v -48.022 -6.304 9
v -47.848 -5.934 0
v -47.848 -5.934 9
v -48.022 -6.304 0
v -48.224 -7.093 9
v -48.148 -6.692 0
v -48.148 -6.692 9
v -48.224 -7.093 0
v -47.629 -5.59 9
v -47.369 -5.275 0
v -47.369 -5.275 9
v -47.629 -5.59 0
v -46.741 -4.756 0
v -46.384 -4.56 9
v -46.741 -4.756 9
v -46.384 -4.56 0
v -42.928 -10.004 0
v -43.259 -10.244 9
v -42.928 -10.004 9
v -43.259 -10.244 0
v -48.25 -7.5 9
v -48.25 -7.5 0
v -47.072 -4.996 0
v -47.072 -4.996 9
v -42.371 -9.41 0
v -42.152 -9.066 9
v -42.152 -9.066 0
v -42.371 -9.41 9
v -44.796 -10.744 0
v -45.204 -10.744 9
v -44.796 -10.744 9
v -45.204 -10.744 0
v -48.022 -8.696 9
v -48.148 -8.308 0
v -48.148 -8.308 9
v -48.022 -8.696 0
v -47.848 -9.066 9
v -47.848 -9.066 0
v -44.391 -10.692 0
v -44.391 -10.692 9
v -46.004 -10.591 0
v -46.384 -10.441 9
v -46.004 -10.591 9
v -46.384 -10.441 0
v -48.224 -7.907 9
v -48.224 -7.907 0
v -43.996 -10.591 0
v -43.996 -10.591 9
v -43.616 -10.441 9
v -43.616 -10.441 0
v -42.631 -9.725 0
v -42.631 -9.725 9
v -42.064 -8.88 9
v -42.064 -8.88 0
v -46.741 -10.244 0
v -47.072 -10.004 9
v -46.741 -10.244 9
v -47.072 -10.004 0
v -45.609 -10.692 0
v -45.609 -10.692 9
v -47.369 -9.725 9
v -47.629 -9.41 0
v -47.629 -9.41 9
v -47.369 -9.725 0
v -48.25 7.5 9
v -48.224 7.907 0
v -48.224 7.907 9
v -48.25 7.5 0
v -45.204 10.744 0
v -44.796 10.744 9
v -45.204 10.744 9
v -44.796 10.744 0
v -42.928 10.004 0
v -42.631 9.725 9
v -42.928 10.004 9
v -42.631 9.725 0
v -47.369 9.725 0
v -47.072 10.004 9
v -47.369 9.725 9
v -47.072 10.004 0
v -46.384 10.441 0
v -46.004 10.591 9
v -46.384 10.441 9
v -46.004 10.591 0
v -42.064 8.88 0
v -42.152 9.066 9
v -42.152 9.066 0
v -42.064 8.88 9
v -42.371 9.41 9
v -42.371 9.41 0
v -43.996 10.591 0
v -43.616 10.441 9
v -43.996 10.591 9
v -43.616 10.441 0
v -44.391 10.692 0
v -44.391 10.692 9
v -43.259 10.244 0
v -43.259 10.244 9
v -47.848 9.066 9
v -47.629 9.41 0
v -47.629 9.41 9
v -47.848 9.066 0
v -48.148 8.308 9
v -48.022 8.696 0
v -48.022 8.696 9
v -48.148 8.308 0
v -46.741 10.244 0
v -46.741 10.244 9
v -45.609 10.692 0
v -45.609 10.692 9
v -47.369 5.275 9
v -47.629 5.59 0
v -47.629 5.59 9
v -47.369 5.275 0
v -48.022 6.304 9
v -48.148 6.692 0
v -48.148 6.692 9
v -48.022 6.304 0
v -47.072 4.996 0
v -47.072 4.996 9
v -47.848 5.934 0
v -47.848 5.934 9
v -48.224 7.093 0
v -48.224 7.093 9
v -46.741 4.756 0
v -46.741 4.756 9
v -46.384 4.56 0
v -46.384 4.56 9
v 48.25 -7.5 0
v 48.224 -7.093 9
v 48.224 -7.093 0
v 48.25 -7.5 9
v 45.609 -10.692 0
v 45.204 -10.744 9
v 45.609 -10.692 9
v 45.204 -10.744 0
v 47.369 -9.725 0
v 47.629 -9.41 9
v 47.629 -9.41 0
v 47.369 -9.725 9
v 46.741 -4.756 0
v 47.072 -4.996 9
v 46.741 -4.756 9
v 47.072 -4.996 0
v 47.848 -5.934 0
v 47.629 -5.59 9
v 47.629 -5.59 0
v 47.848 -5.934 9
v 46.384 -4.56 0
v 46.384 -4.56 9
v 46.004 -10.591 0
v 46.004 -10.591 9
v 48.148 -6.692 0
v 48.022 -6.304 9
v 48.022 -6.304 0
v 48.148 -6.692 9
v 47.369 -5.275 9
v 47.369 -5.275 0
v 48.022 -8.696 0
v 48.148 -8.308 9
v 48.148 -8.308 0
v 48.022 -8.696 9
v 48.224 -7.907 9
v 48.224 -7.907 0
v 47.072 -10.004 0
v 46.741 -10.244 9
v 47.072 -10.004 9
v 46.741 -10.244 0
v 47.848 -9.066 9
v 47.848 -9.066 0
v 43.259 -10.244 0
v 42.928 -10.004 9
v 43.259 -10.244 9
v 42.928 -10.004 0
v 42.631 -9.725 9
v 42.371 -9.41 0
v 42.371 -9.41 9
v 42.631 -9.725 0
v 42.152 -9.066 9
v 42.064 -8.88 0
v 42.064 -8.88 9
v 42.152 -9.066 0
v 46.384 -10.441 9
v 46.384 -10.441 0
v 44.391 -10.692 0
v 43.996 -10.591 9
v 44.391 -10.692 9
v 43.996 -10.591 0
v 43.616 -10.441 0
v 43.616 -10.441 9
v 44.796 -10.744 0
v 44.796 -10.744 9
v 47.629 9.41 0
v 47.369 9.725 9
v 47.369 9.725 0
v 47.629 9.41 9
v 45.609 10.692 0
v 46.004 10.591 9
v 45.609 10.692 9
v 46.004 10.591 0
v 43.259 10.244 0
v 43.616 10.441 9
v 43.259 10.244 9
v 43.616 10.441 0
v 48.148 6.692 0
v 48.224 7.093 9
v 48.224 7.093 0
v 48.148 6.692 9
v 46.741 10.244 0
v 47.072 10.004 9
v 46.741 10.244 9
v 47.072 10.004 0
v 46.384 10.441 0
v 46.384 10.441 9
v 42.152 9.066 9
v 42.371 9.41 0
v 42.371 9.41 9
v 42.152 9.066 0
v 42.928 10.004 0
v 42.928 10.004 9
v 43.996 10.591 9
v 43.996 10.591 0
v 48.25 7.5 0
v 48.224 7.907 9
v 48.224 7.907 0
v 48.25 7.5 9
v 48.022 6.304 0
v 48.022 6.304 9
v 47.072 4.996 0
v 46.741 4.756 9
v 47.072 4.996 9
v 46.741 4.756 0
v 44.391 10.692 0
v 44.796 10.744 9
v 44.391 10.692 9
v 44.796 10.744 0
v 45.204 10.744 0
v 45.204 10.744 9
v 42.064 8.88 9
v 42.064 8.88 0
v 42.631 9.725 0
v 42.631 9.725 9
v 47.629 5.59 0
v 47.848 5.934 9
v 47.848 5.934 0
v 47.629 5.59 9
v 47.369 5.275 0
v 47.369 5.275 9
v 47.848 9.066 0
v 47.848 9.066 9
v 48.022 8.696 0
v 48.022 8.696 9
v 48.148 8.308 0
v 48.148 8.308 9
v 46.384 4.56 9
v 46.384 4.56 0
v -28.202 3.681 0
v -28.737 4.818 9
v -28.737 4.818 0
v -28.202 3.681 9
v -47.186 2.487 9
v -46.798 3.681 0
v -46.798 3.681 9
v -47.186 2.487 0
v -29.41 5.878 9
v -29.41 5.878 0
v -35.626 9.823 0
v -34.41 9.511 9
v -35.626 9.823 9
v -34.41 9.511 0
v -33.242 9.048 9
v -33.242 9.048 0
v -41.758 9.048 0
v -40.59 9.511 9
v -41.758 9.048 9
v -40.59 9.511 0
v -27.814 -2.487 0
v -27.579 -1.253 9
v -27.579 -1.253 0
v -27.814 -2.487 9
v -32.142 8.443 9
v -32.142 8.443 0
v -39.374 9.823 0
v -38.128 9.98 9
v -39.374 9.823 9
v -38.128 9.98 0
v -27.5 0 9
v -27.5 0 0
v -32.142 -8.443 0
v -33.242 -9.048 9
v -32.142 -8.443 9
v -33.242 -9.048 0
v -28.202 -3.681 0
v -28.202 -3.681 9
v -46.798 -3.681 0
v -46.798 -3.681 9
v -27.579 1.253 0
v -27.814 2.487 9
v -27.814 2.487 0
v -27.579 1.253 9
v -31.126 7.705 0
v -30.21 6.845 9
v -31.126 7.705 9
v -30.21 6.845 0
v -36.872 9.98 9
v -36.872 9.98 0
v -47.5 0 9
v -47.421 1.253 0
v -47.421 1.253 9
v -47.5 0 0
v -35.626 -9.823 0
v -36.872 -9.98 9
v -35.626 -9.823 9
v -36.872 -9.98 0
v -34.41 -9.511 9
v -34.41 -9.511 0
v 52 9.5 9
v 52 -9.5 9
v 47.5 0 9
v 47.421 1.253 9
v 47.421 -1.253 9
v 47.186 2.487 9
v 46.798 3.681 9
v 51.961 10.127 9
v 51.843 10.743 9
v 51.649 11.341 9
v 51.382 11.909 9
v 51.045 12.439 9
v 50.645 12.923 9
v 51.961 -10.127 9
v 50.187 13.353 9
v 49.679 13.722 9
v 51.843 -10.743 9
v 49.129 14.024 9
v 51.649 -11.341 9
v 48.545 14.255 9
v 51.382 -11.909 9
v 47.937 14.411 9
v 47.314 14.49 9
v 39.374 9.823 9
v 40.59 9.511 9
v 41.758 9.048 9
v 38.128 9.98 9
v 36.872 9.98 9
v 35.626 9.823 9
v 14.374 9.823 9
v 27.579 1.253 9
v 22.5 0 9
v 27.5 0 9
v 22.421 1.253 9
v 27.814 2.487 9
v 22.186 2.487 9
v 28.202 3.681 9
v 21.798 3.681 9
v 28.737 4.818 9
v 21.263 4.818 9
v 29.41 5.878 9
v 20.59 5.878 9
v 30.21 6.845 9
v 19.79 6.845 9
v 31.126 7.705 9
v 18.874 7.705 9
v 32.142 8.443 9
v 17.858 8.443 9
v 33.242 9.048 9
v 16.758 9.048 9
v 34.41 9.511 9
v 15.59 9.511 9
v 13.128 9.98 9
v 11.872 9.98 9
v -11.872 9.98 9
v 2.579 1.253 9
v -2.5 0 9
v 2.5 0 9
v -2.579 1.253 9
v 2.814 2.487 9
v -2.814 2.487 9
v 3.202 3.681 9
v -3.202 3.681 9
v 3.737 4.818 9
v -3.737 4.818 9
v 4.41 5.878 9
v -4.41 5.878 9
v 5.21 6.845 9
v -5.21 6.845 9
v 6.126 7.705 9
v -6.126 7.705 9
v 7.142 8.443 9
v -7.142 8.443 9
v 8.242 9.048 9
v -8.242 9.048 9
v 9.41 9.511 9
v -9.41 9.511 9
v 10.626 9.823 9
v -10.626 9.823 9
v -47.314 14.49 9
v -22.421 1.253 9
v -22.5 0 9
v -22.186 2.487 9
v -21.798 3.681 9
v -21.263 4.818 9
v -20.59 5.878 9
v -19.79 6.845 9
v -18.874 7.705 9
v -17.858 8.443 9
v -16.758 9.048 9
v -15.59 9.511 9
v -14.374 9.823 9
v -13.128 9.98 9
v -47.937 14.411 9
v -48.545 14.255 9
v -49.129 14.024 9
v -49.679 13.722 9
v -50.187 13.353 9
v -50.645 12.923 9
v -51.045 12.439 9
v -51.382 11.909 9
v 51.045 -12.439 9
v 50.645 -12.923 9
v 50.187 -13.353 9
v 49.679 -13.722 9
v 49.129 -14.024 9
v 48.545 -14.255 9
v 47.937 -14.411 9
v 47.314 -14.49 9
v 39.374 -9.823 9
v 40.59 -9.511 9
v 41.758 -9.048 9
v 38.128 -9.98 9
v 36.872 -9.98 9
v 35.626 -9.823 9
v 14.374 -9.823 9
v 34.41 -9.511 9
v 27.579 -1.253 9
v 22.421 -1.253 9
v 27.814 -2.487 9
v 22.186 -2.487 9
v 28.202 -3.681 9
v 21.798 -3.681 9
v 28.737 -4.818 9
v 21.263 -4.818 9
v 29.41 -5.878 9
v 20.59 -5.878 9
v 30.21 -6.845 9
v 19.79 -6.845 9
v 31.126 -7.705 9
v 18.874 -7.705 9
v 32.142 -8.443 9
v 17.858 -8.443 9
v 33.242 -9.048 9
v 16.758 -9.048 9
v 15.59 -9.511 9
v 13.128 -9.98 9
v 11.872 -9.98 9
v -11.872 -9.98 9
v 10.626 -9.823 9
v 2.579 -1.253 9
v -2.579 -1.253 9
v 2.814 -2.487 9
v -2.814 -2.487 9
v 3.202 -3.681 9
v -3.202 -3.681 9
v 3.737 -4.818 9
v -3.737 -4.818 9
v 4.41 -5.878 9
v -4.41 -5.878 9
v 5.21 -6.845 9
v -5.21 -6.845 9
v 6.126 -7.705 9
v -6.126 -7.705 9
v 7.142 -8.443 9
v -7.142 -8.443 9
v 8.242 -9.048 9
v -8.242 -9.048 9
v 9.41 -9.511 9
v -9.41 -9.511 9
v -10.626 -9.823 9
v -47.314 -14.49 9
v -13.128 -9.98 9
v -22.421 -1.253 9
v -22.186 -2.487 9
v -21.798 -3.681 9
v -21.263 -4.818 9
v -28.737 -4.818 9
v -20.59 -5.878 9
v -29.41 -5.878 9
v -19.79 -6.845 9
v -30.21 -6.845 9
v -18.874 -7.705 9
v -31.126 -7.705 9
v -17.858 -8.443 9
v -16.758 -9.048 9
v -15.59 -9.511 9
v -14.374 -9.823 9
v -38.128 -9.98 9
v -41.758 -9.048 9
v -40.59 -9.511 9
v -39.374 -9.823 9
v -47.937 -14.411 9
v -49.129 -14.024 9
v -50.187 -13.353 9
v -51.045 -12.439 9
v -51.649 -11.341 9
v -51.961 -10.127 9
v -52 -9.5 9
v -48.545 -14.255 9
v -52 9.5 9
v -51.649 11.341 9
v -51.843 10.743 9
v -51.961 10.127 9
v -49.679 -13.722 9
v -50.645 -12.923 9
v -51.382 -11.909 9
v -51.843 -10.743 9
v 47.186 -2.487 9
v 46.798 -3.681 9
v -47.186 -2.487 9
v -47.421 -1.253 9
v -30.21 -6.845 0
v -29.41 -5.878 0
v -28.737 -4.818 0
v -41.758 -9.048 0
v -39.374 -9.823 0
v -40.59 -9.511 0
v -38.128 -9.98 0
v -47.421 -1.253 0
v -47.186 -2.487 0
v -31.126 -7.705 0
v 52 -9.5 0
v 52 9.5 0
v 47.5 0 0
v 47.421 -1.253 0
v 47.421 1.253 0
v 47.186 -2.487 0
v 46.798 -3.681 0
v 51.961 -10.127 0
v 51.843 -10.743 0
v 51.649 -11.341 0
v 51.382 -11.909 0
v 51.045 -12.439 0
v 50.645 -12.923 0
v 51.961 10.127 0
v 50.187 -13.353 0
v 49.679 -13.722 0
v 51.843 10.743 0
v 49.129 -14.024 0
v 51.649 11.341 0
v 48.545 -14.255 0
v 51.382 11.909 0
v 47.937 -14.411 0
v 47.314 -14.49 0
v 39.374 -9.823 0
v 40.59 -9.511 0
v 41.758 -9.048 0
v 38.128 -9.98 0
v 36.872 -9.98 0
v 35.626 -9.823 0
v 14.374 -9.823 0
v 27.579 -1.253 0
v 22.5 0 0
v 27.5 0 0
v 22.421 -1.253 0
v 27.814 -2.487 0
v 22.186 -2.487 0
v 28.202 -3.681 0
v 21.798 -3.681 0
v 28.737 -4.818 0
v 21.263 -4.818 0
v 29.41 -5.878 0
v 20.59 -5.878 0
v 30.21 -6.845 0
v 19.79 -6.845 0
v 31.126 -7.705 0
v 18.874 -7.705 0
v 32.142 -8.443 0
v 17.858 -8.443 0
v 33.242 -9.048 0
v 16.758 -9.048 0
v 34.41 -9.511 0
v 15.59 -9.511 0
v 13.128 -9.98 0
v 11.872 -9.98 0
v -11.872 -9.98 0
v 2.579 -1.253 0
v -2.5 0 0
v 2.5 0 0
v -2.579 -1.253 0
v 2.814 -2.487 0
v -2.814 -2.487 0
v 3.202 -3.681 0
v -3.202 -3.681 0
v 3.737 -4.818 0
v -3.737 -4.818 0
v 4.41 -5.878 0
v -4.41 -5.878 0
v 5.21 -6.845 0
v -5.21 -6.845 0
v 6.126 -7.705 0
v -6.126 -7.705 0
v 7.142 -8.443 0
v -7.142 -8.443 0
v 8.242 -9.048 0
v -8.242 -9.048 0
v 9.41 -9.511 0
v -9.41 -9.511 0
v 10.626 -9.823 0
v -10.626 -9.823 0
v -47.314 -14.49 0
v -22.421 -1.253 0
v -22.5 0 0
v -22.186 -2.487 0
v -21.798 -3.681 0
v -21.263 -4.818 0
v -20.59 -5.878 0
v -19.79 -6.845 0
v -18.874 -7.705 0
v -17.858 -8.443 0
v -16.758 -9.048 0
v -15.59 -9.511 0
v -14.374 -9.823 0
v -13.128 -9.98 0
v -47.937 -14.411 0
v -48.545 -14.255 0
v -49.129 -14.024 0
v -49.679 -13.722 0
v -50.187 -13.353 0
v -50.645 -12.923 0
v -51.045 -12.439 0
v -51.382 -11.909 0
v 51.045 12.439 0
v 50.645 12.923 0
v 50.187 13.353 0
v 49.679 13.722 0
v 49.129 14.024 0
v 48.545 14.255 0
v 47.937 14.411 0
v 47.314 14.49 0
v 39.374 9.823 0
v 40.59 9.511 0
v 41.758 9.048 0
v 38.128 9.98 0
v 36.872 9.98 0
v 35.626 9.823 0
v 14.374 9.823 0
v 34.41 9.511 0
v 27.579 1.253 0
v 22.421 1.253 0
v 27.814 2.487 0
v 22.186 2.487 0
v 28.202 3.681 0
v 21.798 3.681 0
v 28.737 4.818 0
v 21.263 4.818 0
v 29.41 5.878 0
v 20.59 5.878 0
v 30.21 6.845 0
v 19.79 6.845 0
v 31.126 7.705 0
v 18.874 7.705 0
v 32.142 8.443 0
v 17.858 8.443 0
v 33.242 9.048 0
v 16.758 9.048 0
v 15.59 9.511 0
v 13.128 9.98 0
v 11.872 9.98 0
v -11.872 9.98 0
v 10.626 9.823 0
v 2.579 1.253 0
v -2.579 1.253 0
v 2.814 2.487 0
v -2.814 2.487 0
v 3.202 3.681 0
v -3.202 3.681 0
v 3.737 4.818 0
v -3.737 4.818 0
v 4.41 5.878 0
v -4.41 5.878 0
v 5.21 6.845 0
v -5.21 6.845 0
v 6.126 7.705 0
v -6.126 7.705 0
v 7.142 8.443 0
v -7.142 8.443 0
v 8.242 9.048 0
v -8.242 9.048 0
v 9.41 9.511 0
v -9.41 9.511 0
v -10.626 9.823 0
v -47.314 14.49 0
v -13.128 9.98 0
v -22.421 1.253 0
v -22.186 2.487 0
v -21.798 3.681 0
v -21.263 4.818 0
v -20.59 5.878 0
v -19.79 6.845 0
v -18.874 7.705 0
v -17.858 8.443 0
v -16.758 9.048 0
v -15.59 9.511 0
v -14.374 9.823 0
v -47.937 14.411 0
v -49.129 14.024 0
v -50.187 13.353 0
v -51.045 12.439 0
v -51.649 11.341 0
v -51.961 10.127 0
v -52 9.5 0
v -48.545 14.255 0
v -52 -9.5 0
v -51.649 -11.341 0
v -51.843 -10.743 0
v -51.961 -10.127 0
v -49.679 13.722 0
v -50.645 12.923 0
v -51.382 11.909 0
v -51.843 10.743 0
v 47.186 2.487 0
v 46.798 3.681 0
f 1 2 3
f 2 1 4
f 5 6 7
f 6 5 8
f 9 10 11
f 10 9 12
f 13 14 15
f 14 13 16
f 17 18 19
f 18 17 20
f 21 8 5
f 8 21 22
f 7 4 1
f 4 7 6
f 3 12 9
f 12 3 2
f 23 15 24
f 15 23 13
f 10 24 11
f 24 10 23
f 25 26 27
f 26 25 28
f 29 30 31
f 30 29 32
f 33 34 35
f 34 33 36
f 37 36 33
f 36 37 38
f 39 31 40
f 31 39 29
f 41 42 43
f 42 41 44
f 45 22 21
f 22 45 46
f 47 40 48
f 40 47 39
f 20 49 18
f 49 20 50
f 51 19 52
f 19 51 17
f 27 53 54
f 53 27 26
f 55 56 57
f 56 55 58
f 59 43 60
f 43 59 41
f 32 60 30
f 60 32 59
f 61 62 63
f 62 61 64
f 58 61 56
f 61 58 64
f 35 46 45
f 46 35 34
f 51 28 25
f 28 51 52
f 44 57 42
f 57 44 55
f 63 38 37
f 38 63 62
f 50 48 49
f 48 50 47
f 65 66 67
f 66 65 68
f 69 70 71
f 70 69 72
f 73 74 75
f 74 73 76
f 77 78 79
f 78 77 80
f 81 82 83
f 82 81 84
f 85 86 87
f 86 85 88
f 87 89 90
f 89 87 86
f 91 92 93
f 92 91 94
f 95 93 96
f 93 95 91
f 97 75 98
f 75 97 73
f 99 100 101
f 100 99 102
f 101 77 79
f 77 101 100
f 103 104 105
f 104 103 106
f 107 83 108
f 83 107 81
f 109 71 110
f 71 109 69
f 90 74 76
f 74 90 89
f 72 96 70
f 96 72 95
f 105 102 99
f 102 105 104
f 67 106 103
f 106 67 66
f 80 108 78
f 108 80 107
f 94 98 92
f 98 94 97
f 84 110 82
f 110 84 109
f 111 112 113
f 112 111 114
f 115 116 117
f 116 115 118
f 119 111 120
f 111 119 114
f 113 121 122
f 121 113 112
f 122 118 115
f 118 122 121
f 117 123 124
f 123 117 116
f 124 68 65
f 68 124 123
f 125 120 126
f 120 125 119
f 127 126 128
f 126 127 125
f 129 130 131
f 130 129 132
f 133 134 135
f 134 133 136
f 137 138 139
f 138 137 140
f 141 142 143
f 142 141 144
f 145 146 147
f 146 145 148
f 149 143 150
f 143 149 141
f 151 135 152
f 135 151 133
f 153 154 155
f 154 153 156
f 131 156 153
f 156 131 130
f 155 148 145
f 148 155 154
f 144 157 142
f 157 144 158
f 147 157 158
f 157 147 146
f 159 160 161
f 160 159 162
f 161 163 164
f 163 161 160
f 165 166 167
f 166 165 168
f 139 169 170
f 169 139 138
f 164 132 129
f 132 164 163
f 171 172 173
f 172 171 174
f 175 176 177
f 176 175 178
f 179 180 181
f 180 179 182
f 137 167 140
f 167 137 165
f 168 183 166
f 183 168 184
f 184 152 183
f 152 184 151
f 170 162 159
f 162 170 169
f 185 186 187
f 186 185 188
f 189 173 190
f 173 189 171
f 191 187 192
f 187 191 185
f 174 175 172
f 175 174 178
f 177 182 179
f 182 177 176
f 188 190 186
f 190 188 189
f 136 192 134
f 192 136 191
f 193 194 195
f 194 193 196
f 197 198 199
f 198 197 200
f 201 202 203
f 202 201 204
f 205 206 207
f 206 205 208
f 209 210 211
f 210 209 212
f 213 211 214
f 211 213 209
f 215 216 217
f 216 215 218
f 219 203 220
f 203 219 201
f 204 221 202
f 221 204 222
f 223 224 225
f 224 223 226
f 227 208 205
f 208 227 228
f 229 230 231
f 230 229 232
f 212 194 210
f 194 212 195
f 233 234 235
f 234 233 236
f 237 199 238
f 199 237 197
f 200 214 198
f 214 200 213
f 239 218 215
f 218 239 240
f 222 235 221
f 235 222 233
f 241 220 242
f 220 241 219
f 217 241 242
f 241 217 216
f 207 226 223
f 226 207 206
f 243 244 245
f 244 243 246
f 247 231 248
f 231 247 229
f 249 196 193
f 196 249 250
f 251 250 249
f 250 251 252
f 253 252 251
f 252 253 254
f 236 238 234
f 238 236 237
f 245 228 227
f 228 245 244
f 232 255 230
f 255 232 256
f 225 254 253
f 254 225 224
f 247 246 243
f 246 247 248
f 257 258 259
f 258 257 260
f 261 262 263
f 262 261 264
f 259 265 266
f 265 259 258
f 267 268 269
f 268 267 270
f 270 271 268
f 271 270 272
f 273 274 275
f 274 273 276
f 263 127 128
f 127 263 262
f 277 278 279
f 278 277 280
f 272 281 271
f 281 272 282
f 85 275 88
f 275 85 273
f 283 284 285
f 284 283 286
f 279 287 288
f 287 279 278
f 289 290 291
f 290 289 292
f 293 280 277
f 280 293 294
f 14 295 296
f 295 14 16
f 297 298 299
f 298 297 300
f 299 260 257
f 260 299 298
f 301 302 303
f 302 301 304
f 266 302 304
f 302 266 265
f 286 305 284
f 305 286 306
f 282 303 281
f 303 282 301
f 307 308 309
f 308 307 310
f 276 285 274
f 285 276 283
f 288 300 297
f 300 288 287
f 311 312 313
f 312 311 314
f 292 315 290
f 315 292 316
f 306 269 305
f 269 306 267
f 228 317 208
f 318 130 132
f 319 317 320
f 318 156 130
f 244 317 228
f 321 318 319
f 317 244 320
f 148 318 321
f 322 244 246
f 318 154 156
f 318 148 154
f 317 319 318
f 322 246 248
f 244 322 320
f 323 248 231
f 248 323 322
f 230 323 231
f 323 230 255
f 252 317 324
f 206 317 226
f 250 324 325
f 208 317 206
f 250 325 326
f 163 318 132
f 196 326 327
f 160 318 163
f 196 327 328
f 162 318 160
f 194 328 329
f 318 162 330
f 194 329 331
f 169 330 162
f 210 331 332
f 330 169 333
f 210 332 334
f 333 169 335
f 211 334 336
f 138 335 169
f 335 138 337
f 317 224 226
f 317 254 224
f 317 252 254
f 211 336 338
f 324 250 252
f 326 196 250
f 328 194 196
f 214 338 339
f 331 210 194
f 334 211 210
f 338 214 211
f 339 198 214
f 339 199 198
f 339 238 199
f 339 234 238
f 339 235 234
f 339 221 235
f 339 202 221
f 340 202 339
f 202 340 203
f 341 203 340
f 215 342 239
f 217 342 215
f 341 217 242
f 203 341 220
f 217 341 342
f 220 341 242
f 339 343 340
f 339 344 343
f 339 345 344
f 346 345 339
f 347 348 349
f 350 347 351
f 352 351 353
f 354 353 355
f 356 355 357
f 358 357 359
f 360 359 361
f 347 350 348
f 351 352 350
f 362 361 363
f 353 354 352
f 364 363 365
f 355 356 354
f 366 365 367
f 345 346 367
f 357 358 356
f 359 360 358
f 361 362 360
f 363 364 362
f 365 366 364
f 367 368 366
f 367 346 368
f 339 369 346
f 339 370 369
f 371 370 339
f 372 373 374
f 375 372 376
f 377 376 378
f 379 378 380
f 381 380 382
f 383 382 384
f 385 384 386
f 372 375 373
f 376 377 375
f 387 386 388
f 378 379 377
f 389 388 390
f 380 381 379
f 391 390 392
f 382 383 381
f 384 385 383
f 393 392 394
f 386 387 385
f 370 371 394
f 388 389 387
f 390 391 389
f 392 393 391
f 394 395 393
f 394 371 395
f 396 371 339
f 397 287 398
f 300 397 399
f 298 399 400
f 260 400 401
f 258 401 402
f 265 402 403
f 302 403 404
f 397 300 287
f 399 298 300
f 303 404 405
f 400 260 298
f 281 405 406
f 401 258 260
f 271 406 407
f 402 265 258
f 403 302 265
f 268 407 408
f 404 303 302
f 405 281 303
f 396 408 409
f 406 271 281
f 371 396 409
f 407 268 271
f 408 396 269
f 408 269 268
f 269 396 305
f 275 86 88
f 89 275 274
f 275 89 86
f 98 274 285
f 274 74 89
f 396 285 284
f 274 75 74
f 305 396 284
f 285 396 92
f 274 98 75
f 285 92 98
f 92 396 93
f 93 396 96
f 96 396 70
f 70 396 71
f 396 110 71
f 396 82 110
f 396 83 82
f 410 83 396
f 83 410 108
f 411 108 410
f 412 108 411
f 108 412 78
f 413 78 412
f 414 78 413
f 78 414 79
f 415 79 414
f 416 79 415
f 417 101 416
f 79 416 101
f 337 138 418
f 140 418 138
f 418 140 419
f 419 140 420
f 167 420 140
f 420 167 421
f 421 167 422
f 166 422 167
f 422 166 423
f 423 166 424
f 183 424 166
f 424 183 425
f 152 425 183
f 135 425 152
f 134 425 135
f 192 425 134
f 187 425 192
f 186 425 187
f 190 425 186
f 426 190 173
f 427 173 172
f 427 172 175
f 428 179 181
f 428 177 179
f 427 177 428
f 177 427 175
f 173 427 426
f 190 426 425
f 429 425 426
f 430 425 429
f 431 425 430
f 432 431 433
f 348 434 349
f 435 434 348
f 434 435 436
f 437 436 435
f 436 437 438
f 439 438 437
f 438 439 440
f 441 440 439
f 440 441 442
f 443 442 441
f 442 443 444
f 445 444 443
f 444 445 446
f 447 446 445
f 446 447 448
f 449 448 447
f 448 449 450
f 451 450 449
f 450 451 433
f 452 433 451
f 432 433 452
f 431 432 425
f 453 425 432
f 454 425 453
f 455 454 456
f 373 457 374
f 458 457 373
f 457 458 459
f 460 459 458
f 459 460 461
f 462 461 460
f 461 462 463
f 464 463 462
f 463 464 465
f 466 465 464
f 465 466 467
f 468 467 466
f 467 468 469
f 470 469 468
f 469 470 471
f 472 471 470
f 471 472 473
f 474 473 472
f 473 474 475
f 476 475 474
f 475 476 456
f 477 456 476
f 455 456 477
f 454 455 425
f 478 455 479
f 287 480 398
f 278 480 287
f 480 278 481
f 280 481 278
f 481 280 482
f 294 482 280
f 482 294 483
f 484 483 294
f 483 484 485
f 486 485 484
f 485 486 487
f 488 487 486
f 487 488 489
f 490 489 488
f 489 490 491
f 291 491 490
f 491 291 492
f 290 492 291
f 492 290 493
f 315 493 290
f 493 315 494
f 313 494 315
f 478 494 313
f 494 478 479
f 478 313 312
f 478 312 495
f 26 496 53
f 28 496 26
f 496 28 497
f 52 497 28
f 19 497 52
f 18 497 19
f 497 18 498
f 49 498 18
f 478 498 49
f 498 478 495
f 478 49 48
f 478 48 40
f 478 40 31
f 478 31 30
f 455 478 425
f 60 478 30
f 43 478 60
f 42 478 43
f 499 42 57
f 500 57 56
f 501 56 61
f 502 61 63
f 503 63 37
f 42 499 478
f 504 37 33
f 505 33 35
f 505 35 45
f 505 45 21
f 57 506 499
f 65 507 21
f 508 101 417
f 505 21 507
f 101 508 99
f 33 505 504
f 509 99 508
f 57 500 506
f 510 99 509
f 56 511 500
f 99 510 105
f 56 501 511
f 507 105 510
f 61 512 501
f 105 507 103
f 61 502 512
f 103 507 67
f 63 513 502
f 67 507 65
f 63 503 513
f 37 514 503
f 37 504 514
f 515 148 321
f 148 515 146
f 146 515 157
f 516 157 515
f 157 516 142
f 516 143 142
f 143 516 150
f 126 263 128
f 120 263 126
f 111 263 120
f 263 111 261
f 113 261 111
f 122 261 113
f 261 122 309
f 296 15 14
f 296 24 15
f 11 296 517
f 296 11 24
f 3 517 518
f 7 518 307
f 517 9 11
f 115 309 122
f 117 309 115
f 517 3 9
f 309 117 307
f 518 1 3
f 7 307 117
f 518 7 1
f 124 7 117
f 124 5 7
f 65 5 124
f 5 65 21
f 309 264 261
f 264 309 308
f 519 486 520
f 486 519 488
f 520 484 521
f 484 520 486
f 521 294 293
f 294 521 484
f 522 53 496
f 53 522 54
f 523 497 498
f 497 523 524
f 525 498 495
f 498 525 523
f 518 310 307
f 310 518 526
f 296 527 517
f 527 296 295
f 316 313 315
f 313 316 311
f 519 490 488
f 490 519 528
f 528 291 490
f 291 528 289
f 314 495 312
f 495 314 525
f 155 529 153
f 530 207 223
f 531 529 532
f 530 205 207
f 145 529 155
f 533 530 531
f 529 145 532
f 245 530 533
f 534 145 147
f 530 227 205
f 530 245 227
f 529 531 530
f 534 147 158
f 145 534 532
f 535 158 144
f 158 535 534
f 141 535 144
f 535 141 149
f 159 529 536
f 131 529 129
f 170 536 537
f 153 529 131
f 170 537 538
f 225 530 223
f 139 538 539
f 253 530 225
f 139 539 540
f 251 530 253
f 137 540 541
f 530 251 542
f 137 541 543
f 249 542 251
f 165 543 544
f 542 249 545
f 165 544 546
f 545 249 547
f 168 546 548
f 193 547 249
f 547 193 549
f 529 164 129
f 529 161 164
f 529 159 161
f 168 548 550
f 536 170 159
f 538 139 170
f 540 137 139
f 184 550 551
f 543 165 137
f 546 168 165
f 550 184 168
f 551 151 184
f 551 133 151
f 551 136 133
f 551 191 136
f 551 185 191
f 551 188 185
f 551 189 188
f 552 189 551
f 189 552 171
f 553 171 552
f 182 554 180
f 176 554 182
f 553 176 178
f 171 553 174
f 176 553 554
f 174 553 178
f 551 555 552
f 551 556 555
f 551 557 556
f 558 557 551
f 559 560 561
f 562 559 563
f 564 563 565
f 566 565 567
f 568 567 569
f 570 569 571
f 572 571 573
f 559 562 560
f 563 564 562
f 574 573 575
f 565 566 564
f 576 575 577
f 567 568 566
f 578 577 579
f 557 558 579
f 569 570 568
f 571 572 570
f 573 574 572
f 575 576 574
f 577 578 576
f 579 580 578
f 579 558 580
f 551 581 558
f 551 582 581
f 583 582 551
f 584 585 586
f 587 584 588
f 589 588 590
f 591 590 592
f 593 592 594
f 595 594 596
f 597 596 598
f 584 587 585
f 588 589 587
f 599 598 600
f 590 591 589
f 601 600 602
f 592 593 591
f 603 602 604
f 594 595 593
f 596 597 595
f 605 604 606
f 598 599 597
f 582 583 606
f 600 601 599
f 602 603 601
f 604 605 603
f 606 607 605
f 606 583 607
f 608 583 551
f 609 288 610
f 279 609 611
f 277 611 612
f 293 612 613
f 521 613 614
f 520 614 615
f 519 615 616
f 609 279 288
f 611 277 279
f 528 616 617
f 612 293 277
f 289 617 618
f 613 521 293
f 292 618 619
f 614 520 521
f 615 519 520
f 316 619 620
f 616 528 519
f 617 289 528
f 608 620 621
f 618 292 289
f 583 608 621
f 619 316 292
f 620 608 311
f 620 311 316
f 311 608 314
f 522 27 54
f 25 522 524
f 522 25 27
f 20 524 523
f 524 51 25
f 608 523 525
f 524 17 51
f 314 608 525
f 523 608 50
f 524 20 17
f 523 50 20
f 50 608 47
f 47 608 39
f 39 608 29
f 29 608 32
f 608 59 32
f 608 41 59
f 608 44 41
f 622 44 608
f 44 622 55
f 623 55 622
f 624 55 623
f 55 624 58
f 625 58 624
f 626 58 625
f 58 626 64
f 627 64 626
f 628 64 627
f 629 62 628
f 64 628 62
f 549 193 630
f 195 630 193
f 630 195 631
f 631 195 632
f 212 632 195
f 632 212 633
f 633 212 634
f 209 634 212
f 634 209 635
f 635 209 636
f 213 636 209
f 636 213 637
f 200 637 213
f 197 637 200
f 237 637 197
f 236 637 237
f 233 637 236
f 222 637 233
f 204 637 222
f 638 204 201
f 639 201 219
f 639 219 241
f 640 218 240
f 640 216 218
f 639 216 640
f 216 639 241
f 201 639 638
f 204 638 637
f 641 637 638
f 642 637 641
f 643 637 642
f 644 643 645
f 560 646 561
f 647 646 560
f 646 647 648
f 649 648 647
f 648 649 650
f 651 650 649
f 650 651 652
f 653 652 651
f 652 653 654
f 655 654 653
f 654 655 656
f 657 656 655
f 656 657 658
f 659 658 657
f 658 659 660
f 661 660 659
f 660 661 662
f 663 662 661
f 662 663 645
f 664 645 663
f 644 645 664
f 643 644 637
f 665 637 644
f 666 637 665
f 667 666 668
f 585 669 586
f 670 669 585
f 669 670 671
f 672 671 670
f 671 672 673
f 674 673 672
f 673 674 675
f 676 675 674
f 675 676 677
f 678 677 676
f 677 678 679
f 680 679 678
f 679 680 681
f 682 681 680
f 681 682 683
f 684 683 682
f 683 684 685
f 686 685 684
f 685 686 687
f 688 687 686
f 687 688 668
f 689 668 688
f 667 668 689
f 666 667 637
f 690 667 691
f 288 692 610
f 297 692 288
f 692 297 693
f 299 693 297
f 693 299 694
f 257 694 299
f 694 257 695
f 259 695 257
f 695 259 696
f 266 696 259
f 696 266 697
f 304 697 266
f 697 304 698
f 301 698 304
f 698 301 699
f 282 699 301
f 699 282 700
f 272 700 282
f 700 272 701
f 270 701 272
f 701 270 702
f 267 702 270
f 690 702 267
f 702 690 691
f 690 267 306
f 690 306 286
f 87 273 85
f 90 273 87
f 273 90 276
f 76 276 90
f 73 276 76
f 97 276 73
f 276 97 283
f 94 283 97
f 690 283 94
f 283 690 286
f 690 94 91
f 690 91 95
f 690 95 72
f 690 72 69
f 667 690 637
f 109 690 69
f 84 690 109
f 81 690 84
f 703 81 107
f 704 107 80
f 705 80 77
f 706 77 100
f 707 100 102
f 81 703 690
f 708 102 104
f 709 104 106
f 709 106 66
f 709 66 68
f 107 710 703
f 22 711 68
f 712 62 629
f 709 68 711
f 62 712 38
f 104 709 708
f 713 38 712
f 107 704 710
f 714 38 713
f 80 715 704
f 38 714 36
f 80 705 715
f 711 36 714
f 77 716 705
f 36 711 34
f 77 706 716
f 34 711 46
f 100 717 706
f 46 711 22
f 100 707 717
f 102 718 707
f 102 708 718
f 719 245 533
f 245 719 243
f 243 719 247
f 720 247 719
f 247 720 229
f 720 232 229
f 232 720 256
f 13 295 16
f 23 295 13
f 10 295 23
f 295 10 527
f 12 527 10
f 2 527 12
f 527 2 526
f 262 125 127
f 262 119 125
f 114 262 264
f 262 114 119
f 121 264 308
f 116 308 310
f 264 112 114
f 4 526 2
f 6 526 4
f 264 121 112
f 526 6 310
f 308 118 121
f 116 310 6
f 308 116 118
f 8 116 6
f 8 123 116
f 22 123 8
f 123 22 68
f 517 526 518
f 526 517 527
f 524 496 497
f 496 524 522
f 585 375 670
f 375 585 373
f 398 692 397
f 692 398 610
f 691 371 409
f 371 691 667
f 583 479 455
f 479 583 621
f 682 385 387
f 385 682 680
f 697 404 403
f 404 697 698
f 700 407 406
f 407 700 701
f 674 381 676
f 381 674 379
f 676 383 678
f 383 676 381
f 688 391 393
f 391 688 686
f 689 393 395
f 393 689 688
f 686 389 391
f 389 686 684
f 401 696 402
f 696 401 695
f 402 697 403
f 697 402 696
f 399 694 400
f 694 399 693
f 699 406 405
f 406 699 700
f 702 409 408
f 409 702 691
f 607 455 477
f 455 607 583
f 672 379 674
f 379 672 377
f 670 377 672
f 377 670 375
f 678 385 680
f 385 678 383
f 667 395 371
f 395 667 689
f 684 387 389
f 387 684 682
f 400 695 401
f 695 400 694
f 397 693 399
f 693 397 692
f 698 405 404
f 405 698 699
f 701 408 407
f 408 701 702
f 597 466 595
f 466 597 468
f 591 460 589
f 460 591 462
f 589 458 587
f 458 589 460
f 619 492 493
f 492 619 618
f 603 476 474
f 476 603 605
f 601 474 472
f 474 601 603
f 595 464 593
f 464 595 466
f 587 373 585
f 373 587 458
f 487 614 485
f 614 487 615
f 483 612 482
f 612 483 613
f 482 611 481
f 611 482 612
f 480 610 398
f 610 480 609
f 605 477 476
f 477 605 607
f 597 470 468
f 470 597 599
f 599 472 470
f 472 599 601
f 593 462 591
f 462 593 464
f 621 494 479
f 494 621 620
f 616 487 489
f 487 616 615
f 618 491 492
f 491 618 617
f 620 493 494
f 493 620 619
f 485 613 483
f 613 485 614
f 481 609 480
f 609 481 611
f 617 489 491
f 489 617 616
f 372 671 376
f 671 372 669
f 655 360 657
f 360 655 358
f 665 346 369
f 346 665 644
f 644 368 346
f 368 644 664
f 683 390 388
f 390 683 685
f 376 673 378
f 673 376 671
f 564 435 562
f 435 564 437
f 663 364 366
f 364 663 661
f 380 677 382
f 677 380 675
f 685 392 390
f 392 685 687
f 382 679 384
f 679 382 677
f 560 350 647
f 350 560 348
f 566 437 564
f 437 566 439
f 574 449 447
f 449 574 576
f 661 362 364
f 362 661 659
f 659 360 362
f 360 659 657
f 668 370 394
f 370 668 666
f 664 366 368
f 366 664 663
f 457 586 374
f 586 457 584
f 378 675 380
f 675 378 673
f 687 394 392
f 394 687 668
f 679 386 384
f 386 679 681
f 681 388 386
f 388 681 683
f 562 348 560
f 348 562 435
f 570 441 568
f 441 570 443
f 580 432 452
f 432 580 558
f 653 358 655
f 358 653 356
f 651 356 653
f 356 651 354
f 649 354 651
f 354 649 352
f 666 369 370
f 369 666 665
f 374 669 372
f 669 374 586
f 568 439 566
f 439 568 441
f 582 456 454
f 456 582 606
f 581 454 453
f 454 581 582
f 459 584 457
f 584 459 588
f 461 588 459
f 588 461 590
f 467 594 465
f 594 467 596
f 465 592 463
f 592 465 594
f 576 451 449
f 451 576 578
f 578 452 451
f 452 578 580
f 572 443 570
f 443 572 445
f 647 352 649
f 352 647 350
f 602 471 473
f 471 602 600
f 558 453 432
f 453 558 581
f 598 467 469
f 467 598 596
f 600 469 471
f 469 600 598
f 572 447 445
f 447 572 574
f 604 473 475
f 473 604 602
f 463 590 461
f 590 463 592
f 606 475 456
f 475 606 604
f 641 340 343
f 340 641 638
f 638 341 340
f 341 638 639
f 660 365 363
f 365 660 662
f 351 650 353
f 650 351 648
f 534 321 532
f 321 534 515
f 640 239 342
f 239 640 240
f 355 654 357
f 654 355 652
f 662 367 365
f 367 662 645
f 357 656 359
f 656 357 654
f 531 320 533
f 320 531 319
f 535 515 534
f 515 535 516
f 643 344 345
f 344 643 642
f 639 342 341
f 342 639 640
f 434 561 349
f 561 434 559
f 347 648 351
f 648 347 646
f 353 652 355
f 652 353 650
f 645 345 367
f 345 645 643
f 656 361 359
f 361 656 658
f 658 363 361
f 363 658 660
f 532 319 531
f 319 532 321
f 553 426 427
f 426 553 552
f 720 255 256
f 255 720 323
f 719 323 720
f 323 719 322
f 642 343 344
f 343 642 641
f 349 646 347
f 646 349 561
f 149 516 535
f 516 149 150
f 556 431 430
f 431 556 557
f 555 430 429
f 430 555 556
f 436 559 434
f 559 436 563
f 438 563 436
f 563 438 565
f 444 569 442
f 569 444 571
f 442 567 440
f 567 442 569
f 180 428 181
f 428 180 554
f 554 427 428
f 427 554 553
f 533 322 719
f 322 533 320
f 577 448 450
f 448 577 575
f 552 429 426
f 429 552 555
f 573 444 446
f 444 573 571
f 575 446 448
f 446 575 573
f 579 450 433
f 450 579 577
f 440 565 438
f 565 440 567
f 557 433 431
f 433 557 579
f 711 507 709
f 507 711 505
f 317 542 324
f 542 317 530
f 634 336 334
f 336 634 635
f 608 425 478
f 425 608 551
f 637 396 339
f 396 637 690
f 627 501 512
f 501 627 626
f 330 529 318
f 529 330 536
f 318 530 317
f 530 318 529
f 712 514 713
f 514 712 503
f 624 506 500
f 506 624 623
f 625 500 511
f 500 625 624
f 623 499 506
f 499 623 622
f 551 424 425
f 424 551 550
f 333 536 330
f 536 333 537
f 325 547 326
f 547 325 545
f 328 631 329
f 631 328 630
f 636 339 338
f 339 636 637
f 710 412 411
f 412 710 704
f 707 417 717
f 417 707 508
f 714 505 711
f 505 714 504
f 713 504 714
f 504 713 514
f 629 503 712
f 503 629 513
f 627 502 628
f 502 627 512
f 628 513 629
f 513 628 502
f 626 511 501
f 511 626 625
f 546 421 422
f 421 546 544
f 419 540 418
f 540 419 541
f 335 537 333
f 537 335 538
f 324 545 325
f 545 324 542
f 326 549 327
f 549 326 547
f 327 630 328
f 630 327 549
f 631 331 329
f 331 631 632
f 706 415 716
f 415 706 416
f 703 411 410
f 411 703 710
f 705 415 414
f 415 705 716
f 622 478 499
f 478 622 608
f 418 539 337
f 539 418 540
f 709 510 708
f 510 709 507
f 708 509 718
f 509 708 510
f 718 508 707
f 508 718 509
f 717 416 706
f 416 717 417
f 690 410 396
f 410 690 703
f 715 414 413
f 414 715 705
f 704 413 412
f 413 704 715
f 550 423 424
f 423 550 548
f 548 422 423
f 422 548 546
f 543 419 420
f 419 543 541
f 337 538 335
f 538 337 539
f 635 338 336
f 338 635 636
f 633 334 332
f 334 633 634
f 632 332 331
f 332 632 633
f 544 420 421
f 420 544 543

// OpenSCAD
$fn = 50;


difference() {
	union() {
		hull() {
			translate(v = [-47.0000000000, 9.5000000000, 0]) {
				cylinder(h = 9, r = 5);
			}
			translate(v = [47.0000000000, 9.5000000000, 0]) {
				cylinder(h = 9, r = 5);
			}
			translate(v = [-47.0000000000, -9.5000000000, 0]) {
				cylinder(h = 9, r = 5);
			}
			translate(v = [47.0000000000, -9.5000000000, 0]) {
				cylinder(h = 9, r = 5);
			}
		}
	}
	union() {
		#translate(v = [-45.0000000000, -7.5000000000, -100.0000000000]) {
			cylinder(h = 200, r = 3.2500000000);
		}
		#translate(v = [-45.0000000000, 7.5000000000, -100.0000000000]) {
			cylinder(h = 200, r = 3.2500000000);
		}
		#translate(v = [45.0000000000, -7.5000000000, -100.0000000000]) {
			cylinder(h = 200, r = 3.2500000000);
		}
		#translate(v = [45.0000000000, 7.5000000000, -100.0000000000]) {
			cylinder(h = 200, r = 3.2500000000);
		}
		#translate(v = [-37.5000000000, 0, 0]) {
			cylinder(h = 9, r = 10.0000000000);
		}
		#translate(v = [-12.5000000000, 0, 0]) {
			cylinder(h = 9, r = 10.0000000000);
		}
		#translate(v = [12.5000000000, 0, 0]) {
			cylinder(h = 9, r = 10.0000000000);
		}
		#translate(v = [37.5000000000, 0, 0]) {
			cylinder(h = 9, r = 10.0000000000);
		}
	}
}
